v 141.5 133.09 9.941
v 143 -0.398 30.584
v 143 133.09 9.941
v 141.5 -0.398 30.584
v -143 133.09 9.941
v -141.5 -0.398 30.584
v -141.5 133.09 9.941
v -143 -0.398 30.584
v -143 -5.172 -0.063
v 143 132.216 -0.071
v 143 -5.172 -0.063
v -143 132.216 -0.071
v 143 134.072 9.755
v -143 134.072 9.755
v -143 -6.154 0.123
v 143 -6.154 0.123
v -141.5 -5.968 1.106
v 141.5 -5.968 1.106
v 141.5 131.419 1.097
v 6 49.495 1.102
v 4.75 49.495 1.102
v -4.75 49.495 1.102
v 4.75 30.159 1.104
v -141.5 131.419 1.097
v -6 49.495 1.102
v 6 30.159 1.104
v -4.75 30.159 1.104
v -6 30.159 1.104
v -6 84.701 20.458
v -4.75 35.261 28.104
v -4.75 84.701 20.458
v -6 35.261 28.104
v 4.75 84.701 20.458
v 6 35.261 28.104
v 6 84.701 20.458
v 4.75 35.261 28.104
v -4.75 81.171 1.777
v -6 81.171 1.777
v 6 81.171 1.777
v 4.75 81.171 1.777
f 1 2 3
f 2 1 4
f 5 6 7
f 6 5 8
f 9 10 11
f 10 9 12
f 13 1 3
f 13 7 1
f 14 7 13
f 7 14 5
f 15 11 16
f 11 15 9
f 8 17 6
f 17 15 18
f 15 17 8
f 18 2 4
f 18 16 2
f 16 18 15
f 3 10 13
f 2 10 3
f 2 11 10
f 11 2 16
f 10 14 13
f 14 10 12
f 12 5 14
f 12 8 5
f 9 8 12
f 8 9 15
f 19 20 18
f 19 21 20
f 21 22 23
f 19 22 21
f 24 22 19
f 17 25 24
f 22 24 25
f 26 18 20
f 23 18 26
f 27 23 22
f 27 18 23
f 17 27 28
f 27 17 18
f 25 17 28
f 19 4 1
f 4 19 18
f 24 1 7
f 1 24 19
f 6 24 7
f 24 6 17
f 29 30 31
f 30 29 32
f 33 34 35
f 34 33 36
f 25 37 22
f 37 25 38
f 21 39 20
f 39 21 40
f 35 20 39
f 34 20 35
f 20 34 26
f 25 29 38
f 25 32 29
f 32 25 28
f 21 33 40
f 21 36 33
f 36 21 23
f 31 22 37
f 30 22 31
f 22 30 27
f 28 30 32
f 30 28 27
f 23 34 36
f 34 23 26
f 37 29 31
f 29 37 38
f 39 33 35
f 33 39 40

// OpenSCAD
/* 
 *---------------------------------------------------------------------------
 * Floor vent duct model by Mark Wilkerson
 * https://markhuge.com | pgp 8EA279E656673B23 | https://github.com/markhuge
 *---------------------------------------------------------------------------
 * License - CC-BY-SA-4.0
 * This work is licensed under a Creative Commons Attribution-ShareAlike 4.0 
 * International License - (https://creativecommons.org/licenses/by-sa/4.0/).
 *---------------------------------------------------------------------------
 *
 * 3D Printing
 * -----------
 * 0.3mm layer height
 * 3 top/bottom solid layers
 * 4 outline/perimeter shells
 * 0% infill
 * no supports
 *---------------------------------------------------------------------------
 */

// Base dimensions
width = 285;
depth = 135;
height = 30;

module side(depth,height,xpos,ypos) {
  hull(){
    translate([xpos,0,0])
      cube([1,1,1],true);
    translate([xpos,0,height])
      cube([1,1,1],true);
    translate([xpos,-depth,0])
      cube([1,1,10],true);
  }
}


module ramp(width,depth,height) {
  hull(){
    side(depth,height,-width/2);
    side(depth,height,width/2);
  }
}

module duct(){

    // main body
    difference(){
      ramp(width,depth,height);
      translate([0,1,-1])
        ramp(width-3,depth,height);
    }

    // center column
    difference(){
      translate([0,0,-3])
        ramp(11,depth,height+3);
      translate([0,0,-3])
        ramp(8.5,depth,height+3);
      translate([0,0,-3])
        cube([50,70,100],true);
      translate([0,-120,-3])
        cube([60,70,100],true);
    }
}

// Rotate to print flat
translate([0,0,height]) rotate([169.3,0,0]) duct();
